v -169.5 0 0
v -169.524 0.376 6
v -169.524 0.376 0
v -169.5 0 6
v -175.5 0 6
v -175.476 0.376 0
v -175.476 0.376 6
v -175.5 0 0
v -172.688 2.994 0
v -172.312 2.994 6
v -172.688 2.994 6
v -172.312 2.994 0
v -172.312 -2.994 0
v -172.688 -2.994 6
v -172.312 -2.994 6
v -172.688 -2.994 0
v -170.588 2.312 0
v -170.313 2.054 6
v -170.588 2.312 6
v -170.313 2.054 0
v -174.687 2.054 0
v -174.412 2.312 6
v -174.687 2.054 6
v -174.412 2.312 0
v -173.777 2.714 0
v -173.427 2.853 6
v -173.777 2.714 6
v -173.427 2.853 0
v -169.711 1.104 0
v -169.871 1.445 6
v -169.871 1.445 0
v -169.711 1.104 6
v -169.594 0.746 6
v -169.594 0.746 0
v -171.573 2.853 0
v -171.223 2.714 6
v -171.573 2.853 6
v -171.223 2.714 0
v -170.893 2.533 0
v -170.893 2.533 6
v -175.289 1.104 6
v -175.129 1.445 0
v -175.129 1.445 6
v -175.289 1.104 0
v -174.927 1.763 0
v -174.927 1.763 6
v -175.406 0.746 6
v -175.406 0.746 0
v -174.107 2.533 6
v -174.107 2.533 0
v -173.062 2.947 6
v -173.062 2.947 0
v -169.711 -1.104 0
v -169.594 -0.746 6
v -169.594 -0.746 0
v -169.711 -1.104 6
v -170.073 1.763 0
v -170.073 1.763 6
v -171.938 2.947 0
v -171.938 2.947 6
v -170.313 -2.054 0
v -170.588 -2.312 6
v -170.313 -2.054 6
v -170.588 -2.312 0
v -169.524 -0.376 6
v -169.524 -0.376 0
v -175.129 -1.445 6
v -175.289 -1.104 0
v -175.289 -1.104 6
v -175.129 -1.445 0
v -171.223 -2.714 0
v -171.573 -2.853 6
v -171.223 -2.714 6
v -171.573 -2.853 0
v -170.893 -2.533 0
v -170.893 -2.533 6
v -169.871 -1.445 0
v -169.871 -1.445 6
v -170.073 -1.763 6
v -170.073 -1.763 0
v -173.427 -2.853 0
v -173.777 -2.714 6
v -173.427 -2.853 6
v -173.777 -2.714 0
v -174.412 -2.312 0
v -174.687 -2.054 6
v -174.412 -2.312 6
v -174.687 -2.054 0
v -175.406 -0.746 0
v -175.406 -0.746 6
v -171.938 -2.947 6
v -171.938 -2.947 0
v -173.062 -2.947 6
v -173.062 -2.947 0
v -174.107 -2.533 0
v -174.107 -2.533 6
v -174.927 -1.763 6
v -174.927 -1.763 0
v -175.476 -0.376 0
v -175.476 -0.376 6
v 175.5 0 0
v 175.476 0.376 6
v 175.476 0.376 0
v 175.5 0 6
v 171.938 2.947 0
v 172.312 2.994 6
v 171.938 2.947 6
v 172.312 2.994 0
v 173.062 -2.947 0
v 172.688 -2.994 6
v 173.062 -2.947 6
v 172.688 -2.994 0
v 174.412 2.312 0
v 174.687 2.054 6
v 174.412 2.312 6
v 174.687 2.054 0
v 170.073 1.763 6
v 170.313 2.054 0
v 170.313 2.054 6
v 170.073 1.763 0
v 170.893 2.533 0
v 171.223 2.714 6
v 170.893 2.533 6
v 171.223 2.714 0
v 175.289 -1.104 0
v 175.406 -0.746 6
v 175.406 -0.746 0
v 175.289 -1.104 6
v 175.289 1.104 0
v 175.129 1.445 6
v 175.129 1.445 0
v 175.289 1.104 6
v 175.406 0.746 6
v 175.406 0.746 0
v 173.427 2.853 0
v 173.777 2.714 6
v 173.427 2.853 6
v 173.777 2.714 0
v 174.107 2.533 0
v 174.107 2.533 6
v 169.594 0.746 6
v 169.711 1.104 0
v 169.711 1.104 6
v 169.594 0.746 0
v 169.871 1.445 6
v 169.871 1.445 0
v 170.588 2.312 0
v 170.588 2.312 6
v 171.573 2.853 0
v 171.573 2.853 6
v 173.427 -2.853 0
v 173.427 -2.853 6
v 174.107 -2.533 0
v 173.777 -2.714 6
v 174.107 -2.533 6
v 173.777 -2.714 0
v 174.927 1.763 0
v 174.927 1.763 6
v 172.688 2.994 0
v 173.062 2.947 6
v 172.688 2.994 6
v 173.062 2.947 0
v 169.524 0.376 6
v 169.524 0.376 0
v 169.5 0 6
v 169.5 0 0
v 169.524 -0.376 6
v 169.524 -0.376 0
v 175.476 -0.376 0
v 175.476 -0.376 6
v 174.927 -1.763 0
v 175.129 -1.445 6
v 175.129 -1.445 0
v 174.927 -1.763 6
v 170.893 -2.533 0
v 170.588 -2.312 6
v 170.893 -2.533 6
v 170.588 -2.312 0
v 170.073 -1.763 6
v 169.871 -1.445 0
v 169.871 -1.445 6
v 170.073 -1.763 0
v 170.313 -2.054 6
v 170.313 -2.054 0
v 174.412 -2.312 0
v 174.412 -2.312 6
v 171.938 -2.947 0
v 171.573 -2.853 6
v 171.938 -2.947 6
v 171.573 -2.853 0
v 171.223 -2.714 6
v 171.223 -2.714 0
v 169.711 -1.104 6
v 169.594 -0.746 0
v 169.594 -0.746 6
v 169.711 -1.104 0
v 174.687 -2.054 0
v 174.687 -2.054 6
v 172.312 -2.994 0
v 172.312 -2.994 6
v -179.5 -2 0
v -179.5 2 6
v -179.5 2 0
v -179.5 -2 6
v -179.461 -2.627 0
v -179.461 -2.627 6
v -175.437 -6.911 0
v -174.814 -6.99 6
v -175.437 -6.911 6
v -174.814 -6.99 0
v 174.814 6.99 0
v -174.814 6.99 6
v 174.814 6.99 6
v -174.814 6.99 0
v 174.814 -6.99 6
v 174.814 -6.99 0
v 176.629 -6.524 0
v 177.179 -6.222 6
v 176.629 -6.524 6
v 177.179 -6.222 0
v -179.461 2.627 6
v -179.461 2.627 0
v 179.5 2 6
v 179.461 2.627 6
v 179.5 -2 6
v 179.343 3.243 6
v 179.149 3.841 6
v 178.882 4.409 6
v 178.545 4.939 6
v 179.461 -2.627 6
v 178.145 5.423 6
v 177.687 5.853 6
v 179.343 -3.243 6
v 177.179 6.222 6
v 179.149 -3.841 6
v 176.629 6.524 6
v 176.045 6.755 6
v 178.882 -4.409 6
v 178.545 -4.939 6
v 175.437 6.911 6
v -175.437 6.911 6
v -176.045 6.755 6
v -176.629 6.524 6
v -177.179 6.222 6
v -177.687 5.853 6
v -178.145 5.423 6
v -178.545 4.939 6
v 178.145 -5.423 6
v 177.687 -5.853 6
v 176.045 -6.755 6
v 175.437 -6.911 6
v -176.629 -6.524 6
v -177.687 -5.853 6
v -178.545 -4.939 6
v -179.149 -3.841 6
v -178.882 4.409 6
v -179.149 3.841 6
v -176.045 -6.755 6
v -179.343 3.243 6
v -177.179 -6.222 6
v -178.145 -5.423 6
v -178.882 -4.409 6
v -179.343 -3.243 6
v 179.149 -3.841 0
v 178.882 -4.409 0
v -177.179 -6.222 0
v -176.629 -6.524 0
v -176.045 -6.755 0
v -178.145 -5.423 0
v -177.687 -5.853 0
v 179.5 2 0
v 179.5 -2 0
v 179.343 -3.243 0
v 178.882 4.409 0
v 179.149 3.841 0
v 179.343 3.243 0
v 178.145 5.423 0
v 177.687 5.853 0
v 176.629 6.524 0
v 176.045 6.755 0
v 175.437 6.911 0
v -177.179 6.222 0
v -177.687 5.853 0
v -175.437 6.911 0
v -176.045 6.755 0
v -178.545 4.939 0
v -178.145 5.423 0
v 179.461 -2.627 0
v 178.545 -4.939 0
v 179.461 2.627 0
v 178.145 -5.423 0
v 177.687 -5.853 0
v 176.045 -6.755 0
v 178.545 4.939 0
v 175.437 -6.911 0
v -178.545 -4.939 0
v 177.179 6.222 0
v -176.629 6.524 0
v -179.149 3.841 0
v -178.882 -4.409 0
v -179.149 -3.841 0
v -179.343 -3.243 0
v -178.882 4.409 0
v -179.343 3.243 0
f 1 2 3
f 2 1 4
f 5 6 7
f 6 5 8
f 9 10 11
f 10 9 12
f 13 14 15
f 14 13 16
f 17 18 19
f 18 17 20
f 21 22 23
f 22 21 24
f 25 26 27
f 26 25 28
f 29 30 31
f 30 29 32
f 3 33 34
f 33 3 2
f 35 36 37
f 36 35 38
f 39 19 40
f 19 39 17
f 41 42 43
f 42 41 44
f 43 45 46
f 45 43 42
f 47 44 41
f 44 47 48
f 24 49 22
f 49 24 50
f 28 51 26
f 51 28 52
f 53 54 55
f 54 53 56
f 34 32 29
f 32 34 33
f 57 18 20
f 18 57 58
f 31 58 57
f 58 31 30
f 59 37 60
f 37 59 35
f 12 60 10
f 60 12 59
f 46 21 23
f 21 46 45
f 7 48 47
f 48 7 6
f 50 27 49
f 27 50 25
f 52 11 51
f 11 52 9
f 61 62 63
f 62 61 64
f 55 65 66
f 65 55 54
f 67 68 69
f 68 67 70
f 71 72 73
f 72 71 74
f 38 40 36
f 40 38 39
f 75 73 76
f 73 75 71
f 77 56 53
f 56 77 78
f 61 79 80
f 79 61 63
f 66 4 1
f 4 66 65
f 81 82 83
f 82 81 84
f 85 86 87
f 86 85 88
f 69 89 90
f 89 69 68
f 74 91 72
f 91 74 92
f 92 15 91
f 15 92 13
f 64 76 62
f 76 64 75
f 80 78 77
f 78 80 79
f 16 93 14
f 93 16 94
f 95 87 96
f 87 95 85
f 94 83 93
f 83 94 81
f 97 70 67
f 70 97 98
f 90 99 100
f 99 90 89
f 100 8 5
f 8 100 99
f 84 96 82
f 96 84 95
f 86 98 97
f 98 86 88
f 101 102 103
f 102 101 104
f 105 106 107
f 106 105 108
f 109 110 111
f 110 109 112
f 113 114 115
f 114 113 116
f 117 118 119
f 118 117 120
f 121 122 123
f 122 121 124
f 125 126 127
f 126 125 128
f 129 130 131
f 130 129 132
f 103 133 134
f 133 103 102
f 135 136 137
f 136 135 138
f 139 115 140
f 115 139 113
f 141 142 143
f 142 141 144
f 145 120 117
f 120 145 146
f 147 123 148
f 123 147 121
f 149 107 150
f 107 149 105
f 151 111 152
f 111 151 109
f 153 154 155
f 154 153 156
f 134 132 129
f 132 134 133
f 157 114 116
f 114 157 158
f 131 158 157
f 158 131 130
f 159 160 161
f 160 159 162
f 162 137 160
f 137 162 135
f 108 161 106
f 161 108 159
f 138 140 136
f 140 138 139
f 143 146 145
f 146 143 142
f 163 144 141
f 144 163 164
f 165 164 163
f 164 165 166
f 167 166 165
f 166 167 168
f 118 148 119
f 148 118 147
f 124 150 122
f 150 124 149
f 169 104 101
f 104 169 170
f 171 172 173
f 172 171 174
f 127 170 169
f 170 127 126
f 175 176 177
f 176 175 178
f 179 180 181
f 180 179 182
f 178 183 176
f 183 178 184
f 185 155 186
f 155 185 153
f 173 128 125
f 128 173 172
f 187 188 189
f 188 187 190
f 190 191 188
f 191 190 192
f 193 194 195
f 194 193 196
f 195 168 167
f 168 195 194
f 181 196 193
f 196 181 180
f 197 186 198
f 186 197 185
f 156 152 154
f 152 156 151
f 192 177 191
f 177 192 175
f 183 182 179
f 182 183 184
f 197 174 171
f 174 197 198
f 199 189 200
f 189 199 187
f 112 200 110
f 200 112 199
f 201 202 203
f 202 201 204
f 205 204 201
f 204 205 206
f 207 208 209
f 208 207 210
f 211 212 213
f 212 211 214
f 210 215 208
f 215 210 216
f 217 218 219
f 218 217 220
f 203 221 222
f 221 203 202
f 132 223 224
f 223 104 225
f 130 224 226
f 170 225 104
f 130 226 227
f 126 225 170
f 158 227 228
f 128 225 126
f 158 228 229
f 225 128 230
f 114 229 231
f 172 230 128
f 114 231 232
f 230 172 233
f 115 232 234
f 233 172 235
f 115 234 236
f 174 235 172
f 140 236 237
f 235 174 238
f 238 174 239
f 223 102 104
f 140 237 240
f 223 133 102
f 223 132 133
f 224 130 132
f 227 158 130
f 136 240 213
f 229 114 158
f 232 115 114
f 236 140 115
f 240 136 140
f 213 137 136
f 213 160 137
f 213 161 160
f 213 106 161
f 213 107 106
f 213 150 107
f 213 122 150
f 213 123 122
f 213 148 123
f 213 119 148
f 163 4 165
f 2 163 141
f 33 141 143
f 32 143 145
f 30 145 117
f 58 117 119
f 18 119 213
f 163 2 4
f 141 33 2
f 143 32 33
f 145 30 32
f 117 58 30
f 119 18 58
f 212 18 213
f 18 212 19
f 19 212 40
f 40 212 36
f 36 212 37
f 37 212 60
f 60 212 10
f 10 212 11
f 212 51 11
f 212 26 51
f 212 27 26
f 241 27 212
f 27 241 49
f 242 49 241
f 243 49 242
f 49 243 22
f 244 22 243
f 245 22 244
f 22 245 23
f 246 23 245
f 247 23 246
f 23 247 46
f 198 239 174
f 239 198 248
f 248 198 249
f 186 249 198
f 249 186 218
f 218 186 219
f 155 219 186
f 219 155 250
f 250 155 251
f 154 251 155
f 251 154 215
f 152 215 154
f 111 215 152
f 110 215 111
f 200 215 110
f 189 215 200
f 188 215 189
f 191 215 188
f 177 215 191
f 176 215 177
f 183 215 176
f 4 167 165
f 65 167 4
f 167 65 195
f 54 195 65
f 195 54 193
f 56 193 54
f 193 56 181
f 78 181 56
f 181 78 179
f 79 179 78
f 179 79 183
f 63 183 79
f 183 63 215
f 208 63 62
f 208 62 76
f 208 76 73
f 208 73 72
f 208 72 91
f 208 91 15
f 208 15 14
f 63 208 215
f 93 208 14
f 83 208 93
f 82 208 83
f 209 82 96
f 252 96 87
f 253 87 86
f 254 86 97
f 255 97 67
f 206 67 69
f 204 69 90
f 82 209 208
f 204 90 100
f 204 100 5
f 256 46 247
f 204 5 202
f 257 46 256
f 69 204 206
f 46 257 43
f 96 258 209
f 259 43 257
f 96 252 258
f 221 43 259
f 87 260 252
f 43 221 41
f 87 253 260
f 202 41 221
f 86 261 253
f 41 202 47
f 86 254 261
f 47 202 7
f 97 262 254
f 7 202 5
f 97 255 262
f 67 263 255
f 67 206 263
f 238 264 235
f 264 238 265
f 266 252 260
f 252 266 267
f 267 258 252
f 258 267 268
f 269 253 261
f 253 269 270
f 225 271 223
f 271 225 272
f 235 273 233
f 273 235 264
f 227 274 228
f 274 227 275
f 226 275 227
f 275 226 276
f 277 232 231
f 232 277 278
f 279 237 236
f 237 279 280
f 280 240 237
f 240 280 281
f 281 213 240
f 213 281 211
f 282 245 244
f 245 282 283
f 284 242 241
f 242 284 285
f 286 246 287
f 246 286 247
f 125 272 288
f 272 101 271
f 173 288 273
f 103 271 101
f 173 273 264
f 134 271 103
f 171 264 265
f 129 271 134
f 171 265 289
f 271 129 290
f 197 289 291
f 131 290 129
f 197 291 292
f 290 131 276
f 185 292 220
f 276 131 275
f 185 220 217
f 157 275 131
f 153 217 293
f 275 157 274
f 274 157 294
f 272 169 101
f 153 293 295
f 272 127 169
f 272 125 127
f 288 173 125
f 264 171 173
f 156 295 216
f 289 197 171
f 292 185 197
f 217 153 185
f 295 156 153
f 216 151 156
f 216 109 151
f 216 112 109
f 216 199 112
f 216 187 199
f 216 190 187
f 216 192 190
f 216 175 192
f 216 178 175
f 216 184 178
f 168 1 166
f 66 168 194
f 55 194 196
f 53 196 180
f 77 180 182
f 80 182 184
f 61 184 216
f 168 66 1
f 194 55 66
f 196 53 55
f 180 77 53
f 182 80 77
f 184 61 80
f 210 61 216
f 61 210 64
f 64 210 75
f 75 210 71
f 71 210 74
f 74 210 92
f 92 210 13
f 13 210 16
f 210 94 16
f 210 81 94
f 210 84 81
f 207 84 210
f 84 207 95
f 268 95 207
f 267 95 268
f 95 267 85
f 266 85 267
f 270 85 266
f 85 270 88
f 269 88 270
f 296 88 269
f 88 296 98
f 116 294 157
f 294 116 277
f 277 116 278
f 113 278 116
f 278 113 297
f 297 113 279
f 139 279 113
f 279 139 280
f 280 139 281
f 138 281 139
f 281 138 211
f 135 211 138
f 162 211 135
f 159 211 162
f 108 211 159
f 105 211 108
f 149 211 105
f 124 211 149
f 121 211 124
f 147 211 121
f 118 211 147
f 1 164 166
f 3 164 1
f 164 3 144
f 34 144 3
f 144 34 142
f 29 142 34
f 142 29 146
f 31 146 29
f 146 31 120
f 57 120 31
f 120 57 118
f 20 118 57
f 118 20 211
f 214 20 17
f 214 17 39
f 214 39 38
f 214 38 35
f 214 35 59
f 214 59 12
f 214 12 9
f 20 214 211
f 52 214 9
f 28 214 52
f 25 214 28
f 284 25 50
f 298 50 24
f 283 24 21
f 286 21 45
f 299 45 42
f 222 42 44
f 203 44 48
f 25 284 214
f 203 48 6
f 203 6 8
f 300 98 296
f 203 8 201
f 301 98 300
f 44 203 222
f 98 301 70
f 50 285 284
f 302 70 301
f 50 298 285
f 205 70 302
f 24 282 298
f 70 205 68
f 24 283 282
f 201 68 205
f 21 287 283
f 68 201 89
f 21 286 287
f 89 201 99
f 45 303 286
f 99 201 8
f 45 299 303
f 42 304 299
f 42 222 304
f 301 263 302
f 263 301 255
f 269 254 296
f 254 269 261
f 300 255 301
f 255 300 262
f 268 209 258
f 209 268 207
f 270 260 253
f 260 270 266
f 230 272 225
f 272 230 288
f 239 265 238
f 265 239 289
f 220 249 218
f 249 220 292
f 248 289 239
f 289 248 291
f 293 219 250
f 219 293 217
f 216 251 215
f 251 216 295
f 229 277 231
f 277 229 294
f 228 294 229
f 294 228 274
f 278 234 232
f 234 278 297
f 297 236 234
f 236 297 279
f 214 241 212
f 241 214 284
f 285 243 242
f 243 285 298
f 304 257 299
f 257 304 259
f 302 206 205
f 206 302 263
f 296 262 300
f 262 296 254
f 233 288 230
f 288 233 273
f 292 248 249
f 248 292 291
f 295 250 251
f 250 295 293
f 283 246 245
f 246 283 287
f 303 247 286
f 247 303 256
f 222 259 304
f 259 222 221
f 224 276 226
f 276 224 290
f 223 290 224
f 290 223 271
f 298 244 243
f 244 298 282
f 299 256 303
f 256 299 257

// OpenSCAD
$fn = 50;


difference() {
	union() {
		hull() {
			translate(v = [-174.5000000000, 2.0000000000, 0]) {
				cylinder(h = 6, r = 5);
			}
			translate(v = [174.5000000000, 2.0000000000, 0]) {
				cylinder(h = 6, r = 5);
			}
			translate(v = [-174.5000000000, -2.0000000000, 0]) {
				cylinder(h = 6, r = 5);
			}
			translate(v = [174.5000000000, -2.0000000000, 0]) {
				cylinder(h = 6, r = 5);
			}
		}
	}
	union() {
		translate(v = [-172.5000000000, 0.0000000000, -100.0000000000]) {
			cylinder(h = 200, r = 3.0000000000);
		}
		translate(v = [-172.5000000000, 0.0000000000, -100.0000000000]) {
			cylinder(h = 200, r = 3.0000000000);
		}
		translate(v = [172.5000000000, 0.0000000000, -100.0000000000]) {
			cylinder(h = 200, r = 3.0000000000);
		}
		translate(v = [172.5000000000, 0.0000000000, -100.0000000000]) {
			cylinder(h = 200, r = 3.0000000000);
		}
	}
}
